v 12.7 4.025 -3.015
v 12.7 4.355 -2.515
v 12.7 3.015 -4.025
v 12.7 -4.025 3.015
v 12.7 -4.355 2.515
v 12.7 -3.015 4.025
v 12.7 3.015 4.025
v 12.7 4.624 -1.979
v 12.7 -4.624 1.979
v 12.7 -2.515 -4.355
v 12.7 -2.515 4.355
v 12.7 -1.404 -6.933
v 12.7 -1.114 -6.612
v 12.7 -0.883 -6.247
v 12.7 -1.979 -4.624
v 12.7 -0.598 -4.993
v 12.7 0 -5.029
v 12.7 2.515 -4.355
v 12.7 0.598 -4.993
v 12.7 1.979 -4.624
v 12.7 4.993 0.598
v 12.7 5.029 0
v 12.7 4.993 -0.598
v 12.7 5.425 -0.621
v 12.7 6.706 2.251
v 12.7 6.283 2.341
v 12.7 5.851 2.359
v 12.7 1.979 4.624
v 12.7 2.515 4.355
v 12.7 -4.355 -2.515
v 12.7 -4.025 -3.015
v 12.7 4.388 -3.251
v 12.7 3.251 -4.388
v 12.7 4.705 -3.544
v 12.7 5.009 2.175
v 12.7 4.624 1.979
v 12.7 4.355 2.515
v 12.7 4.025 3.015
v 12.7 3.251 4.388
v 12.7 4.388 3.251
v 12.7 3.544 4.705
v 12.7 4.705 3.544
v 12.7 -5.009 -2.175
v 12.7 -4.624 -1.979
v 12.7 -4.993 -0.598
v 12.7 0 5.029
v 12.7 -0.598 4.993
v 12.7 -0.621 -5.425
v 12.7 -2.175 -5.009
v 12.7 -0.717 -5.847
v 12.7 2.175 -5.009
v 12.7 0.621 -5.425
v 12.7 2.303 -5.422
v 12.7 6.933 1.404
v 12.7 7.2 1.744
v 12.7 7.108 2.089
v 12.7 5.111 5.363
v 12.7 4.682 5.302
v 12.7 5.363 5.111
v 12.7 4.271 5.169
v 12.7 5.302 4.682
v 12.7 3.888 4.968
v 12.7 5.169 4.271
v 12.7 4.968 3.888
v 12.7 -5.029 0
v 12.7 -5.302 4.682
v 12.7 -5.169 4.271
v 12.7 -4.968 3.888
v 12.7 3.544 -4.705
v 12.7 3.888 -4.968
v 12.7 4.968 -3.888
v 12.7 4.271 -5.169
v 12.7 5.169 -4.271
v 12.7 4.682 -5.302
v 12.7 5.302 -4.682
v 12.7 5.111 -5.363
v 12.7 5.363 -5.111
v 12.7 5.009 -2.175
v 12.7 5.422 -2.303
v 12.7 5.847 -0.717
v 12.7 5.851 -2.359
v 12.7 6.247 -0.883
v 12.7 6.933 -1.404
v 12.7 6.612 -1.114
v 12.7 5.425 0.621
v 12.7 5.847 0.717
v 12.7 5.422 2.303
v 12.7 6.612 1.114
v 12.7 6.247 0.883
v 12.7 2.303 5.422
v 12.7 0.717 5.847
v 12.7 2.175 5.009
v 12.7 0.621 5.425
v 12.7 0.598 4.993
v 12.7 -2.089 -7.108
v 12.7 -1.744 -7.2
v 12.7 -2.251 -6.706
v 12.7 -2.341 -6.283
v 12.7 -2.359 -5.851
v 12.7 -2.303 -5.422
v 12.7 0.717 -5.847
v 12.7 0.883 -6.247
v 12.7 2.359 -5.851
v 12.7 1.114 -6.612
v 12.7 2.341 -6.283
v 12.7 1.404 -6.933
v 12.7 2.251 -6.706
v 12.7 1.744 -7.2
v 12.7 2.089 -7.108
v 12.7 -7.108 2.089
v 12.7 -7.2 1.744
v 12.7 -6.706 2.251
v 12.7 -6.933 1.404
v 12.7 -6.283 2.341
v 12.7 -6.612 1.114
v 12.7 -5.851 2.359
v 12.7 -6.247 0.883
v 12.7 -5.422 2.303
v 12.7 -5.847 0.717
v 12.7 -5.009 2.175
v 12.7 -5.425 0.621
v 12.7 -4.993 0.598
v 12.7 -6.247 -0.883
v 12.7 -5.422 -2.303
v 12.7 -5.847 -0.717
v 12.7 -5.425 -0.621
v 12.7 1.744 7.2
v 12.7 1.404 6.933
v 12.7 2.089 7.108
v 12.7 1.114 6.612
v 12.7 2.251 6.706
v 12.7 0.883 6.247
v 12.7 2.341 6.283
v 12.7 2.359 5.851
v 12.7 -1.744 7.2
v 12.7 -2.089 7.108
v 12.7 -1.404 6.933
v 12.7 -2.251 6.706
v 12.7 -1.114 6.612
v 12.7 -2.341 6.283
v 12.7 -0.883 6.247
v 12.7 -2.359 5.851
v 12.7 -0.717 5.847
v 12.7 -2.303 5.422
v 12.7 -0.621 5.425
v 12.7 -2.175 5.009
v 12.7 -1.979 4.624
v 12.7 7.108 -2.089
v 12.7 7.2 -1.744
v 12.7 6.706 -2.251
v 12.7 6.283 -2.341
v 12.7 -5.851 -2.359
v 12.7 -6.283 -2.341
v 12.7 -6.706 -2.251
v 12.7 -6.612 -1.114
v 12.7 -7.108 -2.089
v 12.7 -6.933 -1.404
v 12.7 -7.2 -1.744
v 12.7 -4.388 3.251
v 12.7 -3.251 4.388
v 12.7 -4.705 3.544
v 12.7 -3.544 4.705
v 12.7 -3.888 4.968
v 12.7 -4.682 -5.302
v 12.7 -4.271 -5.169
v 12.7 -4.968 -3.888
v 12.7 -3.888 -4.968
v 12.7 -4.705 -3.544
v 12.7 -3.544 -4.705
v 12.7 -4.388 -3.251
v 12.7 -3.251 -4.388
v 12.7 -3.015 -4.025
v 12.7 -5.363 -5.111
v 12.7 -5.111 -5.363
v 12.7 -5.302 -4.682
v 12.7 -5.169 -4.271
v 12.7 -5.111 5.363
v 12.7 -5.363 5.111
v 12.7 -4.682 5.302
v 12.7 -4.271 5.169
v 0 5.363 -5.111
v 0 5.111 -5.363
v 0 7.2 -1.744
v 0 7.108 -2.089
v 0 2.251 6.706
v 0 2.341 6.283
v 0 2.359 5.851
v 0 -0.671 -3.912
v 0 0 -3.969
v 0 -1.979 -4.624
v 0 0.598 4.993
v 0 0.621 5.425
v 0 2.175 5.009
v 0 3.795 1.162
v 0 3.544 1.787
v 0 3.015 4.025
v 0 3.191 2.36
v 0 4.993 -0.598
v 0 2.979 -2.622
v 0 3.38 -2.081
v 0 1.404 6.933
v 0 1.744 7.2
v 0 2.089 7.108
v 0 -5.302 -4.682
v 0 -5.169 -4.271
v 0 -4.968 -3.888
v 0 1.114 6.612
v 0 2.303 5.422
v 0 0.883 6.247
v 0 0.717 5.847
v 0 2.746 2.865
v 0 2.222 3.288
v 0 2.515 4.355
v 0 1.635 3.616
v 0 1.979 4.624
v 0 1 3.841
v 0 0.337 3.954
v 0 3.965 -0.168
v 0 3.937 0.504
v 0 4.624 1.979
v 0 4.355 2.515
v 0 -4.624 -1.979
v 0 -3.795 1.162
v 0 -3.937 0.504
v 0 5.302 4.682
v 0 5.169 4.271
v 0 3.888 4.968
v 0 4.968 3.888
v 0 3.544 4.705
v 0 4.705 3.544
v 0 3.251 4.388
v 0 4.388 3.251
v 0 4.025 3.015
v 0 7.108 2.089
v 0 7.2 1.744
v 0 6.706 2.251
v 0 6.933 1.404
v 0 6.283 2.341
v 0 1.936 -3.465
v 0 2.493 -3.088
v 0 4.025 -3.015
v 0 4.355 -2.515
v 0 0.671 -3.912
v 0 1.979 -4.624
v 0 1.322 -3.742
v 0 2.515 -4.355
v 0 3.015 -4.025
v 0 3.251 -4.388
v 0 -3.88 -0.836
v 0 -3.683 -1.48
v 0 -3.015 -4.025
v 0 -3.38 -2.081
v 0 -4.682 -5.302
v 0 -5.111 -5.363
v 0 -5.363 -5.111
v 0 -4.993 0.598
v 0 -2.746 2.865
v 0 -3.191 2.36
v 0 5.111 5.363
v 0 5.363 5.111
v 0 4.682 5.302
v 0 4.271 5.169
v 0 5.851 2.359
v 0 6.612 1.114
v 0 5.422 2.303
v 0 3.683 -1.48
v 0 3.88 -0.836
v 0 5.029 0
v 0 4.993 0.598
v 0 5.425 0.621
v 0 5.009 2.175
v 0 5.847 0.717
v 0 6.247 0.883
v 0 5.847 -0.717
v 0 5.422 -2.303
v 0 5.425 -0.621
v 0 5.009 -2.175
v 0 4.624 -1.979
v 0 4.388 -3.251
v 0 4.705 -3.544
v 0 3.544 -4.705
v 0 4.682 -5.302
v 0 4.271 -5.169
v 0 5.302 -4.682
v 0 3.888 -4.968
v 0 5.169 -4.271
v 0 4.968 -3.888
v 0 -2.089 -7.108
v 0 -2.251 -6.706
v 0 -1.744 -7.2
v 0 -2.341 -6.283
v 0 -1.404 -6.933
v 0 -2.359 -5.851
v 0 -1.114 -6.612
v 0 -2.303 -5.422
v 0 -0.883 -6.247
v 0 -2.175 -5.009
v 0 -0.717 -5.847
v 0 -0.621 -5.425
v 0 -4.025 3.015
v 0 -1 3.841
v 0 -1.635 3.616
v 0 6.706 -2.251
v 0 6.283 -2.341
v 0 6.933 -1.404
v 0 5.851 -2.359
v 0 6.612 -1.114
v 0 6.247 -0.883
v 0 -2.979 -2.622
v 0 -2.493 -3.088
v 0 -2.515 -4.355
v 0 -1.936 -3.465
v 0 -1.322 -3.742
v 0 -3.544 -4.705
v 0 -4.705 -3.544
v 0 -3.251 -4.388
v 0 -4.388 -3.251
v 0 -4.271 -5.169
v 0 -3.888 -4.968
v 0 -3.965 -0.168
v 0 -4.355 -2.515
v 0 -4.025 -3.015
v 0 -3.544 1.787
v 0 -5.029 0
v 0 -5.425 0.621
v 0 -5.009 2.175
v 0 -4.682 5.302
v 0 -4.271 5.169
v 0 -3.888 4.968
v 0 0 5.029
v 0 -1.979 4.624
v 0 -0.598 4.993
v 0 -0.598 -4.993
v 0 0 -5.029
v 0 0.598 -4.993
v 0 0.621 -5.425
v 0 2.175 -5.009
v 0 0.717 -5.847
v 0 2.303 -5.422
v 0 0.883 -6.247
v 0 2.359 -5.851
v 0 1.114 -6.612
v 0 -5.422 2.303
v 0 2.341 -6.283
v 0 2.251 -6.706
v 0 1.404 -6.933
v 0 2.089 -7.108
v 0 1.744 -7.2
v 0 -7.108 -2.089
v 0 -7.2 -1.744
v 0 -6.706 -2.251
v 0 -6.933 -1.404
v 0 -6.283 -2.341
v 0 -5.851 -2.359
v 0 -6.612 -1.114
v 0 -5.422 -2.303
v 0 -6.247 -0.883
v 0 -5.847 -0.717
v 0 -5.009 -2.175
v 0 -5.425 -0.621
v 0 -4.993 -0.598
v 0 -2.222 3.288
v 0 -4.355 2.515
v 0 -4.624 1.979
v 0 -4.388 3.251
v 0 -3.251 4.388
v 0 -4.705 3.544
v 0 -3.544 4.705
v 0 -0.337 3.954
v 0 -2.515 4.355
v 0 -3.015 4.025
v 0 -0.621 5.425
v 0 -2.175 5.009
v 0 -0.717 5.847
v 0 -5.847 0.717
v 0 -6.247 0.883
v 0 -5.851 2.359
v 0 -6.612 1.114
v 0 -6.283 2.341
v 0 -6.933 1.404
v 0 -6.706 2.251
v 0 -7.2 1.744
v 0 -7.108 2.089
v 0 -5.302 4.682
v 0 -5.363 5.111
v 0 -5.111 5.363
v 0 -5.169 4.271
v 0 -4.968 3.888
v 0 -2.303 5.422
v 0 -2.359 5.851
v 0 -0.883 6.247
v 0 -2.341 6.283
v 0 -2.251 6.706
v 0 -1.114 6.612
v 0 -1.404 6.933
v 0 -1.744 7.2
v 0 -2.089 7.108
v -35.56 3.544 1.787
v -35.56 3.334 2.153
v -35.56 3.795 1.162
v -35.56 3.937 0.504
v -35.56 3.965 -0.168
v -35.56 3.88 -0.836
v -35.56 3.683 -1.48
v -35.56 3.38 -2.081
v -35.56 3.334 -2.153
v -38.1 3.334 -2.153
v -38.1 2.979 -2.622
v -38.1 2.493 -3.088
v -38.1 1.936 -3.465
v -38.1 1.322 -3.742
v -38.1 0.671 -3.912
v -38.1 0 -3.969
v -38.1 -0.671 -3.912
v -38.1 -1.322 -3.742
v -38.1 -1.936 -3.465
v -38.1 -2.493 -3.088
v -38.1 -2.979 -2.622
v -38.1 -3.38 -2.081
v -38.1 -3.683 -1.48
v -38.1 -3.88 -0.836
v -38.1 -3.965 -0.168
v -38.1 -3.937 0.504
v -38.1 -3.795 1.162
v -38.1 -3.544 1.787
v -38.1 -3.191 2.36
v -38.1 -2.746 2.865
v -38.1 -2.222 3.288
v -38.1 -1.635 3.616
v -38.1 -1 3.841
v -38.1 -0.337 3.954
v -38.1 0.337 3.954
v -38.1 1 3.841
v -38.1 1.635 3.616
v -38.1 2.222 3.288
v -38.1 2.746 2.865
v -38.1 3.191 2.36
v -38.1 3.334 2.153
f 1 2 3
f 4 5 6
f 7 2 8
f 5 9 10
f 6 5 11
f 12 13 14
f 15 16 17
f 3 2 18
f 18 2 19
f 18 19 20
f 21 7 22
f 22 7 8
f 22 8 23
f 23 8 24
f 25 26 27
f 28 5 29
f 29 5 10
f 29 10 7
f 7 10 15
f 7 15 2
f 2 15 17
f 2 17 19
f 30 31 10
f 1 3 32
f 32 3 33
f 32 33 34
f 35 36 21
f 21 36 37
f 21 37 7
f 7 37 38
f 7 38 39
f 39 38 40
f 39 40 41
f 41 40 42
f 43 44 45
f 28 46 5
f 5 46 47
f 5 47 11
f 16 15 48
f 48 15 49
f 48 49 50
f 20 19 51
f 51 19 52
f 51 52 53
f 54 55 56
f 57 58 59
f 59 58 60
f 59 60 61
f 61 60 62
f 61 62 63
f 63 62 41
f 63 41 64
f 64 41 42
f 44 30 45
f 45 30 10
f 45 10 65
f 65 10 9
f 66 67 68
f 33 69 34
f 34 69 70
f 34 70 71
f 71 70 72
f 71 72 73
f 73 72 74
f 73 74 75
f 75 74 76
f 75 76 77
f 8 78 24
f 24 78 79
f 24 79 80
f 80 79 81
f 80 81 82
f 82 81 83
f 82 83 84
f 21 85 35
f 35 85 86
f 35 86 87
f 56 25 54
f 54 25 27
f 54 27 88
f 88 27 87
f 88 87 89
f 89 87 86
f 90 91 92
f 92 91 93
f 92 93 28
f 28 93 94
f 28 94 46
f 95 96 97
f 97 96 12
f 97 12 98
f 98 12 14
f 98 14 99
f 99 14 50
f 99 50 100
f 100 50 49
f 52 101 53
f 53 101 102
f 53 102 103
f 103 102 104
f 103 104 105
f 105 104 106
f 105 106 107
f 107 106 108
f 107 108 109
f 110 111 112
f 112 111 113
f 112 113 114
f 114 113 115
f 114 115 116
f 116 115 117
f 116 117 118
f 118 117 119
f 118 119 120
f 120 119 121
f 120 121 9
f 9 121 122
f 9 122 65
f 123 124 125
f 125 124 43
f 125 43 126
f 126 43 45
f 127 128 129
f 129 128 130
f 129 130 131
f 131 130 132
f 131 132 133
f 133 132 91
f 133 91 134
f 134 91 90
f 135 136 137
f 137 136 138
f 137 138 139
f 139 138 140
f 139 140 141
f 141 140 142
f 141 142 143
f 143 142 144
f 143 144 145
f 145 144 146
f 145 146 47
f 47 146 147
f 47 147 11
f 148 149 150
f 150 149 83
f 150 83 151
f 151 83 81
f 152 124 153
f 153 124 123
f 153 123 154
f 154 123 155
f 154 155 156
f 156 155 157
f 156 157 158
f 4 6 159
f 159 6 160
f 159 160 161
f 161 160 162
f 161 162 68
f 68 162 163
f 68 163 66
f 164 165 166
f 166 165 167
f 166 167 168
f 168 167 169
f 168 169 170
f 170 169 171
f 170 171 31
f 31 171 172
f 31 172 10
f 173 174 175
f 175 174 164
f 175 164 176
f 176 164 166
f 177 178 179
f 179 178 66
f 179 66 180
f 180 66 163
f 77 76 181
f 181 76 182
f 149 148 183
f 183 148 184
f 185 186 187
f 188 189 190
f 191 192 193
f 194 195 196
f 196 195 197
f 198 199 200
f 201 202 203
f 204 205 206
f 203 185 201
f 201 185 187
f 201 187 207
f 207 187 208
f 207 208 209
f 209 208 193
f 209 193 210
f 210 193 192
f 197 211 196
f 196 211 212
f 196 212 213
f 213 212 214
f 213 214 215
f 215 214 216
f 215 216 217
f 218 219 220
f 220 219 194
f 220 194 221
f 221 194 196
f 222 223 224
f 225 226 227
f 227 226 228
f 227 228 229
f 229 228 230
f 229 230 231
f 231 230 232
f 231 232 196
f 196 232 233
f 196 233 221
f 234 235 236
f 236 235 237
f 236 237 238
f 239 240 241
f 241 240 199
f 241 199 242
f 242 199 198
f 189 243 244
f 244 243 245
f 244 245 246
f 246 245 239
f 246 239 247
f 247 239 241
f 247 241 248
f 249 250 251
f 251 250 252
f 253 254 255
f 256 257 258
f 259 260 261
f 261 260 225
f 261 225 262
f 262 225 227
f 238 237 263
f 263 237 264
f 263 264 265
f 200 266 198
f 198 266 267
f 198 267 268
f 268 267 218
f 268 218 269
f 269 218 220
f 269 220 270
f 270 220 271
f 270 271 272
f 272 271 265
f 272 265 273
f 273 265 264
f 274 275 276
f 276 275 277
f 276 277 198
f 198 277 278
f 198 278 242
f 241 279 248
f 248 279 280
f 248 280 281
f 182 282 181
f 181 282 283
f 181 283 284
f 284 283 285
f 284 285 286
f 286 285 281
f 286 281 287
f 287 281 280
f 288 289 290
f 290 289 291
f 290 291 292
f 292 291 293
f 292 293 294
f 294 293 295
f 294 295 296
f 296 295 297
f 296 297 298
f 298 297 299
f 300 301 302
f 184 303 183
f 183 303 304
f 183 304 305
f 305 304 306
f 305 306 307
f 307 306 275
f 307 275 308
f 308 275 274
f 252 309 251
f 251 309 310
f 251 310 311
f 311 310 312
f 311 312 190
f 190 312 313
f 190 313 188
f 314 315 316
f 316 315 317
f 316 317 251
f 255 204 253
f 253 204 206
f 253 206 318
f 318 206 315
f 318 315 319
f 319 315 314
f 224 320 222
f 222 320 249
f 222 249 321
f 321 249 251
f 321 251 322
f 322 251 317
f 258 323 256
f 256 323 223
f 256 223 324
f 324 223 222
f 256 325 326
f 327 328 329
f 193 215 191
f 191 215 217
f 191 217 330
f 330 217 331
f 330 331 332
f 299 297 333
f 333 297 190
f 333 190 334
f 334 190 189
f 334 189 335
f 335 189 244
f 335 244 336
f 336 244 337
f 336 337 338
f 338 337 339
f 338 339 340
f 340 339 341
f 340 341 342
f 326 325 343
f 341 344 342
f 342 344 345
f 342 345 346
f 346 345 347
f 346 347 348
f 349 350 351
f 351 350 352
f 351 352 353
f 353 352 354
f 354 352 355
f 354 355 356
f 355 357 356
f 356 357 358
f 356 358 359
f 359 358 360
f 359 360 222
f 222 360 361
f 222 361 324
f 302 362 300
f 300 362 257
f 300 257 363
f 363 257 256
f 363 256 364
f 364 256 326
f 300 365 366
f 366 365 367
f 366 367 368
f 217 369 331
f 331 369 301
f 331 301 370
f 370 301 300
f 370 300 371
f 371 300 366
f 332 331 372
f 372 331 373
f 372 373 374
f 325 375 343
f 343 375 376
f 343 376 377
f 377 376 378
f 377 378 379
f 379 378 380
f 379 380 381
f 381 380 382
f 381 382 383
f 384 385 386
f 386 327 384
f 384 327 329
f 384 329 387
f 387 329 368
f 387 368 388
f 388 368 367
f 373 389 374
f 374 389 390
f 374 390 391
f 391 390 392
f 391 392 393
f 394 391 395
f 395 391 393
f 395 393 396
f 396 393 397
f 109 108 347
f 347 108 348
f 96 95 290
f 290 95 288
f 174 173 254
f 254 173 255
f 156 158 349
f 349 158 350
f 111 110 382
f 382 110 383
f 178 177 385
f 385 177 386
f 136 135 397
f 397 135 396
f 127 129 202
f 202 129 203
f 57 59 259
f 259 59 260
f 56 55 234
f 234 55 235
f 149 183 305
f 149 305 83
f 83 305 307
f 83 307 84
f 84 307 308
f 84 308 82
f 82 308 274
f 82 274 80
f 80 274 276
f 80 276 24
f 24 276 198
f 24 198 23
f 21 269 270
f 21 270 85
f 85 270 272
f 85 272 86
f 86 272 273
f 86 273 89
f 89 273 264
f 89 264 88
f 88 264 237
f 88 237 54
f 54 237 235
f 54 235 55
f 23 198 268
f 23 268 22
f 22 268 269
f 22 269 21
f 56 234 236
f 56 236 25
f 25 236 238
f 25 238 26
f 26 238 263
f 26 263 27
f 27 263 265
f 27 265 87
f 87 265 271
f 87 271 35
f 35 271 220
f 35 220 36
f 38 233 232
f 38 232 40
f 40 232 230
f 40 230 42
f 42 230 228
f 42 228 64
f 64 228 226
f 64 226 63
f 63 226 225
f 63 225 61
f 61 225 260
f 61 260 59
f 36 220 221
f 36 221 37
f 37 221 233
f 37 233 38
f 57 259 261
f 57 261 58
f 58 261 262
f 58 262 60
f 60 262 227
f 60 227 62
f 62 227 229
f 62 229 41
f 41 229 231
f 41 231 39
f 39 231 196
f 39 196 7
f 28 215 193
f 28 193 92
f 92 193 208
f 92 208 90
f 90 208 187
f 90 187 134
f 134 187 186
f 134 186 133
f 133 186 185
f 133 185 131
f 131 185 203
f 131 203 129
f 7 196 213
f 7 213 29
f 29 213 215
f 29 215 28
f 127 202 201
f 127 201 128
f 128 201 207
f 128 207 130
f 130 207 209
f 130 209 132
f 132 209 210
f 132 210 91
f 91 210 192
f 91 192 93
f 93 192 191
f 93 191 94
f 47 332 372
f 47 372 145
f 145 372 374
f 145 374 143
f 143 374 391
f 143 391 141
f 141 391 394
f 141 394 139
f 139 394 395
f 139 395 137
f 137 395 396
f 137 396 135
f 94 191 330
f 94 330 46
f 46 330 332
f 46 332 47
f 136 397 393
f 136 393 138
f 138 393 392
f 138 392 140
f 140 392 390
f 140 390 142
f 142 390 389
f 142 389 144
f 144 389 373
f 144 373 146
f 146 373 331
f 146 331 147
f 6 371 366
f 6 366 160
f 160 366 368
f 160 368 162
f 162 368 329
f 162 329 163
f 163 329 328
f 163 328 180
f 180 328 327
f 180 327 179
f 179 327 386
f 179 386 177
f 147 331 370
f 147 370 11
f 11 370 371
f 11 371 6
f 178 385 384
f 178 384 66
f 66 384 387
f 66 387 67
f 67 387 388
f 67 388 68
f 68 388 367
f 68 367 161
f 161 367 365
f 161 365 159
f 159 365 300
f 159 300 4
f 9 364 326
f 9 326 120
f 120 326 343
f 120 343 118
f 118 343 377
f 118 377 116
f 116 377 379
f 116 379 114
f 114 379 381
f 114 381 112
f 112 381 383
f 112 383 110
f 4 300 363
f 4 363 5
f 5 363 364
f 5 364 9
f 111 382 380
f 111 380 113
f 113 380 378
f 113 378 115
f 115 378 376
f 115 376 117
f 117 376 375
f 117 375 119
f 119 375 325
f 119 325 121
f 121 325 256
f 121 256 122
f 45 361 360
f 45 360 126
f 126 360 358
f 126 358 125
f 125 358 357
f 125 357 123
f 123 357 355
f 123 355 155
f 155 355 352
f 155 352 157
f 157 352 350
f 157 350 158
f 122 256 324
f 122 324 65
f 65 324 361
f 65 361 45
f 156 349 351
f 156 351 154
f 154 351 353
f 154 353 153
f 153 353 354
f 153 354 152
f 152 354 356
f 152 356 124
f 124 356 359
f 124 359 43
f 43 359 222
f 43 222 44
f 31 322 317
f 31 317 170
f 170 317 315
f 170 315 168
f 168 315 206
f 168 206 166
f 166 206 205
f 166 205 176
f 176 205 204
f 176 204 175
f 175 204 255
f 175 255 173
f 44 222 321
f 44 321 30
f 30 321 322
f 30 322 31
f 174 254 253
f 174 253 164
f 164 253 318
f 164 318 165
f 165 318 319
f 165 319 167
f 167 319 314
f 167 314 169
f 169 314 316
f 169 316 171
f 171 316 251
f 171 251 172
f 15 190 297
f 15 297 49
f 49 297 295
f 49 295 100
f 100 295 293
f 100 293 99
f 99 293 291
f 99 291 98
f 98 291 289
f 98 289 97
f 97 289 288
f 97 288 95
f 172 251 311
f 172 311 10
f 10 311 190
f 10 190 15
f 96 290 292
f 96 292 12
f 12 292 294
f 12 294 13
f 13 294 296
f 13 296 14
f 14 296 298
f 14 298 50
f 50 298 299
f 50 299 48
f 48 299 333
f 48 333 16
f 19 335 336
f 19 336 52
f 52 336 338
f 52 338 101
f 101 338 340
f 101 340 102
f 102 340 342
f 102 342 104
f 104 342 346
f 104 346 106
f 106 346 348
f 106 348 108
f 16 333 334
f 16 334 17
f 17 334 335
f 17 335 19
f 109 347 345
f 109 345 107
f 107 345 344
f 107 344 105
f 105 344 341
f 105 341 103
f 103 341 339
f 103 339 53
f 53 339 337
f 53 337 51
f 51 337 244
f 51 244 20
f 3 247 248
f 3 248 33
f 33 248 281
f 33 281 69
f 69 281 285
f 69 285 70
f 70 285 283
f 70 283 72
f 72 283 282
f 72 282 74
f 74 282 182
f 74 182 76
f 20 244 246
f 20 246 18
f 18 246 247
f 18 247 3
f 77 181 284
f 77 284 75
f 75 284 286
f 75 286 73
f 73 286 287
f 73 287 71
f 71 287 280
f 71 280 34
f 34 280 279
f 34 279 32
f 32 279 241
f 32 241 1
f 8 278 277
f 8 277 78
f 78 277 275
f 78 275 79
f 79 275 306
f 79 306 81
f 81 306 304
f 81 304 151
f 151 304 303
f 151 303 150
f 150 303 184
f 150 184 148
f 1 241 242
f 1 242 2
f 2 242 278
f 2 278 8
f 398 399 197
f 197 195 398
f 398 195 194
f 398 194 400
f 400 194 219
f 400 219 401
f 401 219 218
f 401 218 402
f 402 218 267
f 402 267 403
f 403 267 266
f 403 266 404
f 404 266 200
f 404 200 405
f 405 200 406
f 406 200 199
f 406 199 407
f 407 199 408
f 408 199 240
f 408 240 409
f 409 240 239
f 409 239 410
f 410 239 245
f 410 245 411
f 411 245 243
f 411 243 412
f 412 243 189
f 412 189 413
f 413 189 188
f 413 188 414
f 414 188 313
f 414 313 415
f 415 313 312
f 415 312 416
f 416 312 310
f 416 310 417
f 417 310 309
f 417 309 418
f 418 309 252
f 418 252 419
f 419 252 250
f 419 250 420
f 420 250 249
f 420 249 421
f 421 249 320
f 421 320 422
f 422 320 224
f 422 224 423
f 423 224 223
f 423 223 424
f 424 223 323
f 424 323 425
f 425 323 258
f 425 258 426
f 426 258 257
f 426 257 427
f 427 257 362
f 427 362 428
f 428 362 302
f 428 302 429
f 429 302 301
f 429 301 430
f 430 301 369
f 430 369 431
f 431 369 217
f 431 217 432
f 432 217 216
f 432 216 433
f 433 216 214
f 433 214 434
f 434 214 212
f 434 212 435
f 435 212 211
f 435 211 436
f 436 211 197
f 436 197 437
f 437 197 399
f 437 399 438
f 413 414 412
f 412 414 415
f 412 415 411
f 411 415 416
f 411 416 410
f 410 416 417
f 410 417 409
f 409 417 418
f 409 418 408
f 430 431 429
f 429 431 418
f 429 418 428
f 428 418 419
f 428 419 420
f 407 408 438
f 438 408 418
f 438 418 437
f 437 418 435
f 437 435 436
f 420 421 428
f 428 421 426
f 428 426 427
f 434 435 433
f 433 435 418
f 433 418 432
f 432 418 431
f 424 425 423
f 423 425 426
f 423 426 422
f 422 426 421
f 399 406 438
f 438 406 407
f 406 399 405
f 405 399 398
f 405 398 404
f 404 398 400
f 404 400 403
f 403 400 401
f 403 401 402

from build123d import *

# Parameters (mm, degrees)
BASPROSKE_W         = 12.7
BASPROSKE_H         = 7.408333333
TOOTHCUT_DEPTH      = 17.463802889
TEETHCUTS_COUNT     = 12
TEETHCUTS_ANGLE     = 330
BORSKE_R            = 3.96875
BOSS_EXTRUDE1_DEPTH = 38.1
SKETCH2_W           = 4.30677954
SKETCH2_H           = 1.27
CUT_EXTRUDE1_DEPTH  = 2.54


with BuildPart() as part:
    # BasProSke → Base-Revolve (revolve)
    with BuildSketch(Plane(origin=(0, 0, 0), x_dir=(1, 0, 0), z_dir=(0, 1, 0)), mode=Mode.PRIVATE) as base_revolve_sk:
        with Locations((6.35, 3.704166667)):
            Rectangle(BASPROSKE_W, BASPROSKE_H)
    revolve(base_revolve_sk.sketch.rotate(Axis((-10, 0, 0), (1, 0, 0)), 180), axis=Axis((-10, 0, 0), (1, 0, 0)))

    # TooCutSke → ToothCut (cut, through all)
    with BuildSketch(Plane(origin=(0, 0, 0), x_dir=(0, 0, -1), z_dir=(1, 0, 0))):
        with BuildLine():
            ThreePointArc((0.598297521, 4.993485027), (0, 5.0292), (-0.598297521, 4.993485027))
            ThreePointArc((-0.598297521, 4.993485027), (-0.89092307, 6.262076537), (-1.773623584, 7.219047766))
            ThreePointArc((-1.773623584, 7.219047766), (0, 7.433733333), (1.773623584, 7.219047766))
            ThreePointArc((1.773623584, 7.219047766), (0.89092307, 6.262076537), (0.598297521, 4.993485027))
        make_face()
    toothcut = extrude(amount=TOOTHCUT_DEPTH, mode=Mode.SUBTRACT)

    # TeethCuts: ToothCut ×12 about axis
    teethcuts_axis = Axis((-10, 0, 0), (1, 0, 0))
    for i in range(1, TEETHCUTS_COUNT):
        add(toothcut.rotate(teethcuts_axis, i * TEETHCUTS_ANGLE / (TEETHCUTS_COUNT - 1)), mode=Mode.SUBTRACT)

    # BorSke → Boss-Extrude1 (add)
    with BuildSketch(Plane(origin=(0, 0, 0), x_dir=(0, 0, -1), z_dir=(1, 0, 0))):
        Circle(BORSKE_R)
    extrude(amount=-BOSS_EXTRUDE1_DEPTH)

    # Sketch2 → Cut-Extrude1 (cut)
    with BuildSketch(Plane.ZY.offset(38.1)):
        with Locations((0, 3.96875)):
            Rectangle(SKETCH2_W, SKETCH2_H)
    extrude(amount=-CUT_EXTRUDE1_DEPTH, mode=Mode.SUBTRACT)


solid = part.part
